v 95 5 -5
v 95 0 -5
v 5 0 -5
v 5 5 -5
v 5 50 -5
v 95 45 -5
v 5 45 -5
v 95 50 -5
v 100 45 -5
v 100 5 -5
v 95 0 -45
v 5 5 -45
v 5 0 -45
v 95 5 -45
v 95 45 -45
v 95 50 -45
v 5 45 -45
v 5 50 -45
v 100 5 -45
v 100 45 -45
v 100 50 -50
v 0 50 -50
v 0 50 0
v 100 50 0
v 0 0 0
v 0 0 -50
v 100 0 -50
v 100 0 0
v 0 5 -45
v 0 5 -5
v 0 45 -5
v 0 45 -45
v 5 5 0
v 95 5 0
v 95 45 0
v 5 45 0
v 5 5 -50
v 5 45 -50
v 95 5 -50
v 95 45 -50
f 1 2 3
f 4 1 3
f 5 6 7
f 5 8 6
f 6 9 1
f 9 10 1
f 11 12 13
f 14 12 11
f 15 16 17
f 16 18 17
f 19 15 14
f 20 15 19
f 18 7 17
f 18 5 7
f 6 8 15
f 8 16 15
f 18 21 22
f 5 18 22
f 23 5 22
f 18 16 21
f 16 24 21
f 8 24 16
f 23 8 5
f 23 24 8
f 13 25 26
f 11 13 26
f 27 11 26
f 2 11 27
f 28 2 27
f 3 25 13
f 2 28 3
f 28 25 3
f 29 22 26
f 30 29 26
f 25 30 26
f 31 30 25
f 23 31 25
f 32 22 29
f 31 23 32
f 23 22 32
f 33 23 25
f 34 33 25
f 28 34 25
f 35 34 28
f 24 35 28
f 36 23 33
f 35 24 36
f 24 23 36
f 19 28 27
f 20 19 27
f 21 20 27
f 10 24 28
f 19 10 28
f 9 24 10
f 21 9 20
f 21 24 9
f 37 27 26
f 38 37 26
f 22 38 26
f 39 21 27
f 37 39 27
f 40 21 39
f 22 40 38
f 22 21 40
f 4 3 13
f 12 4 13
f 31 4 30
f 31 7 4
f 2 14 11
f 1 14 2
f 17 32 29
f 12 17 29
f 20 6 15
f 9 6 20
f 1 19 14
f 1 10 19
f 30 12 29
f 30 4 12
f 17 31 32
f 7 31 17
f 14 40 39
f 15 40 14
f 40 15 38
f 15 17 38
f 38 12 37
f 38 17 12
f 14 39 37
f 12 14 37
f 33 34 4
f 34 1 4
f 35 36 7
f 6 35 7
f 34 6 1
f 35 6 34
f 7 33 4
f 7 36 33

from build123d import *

# Parameters (mm, degrees)
SKETCH1_W           = 100
SKETCH1_H           = 50
SKETCH1_W_2         = 90
SKETCH1_H_2         = 40
BOSS_EXTRUDE1_DEPTH = 50
SKETCH2_W           = 40
SKETCH2_H           = 40
CUT_EXTRUDE1_DEPTH  = 101
SKETCH3_W           = 90
SKETCH3_H           = 40
CUT_EXTRUDE2_DEPTH  = 51


with BuildPart() as part:
    # Sketch1 → Boss-Extrude1 (new body)
    with BuildSketch(Plane(origin=(0, 0, 0), x_dir=(1, 0, 0), z_dir=(0, 1, 0))):
        with Locations((50, 25)):
            Rectangle(SKETCH1_W, SKETCH1_H)
        with Locations((50, 25)):
            Rectangle(SKETCH1_W_2, SKETCH1_H_2, mode=Mode.SUBTRACT)
    extrude(amount=BOSS_EXTRUDE1_DEPTH)

    # Sketch2 → Cut-Extrude1 (cut, through all)
    with BuildSketch(Plane(origin=(100, 0, 0), x_dir=(0, 0, -1), z_dir=(1, 0, 0))):
        with Locations((25, 25)):
            Rectangle(SKETCH2_W, SKETCH2_H)
    extrude(amount=-CUT_EXTRUDE1_DEPTH, mode=Mode.SUBTRACT)

    # Sketch3 → Cut-Extrude2 (cut, through all)
    with BuildSketch(Plane.XY):
        with Locations((50, 25)):
            Rectangle(SKETCH3_W, SKETCH3_H)
    extrude(amount=-CUT_EXTRUDE2_DEPTH, mode=Mode.SUBTRACT)


solid = part.part
